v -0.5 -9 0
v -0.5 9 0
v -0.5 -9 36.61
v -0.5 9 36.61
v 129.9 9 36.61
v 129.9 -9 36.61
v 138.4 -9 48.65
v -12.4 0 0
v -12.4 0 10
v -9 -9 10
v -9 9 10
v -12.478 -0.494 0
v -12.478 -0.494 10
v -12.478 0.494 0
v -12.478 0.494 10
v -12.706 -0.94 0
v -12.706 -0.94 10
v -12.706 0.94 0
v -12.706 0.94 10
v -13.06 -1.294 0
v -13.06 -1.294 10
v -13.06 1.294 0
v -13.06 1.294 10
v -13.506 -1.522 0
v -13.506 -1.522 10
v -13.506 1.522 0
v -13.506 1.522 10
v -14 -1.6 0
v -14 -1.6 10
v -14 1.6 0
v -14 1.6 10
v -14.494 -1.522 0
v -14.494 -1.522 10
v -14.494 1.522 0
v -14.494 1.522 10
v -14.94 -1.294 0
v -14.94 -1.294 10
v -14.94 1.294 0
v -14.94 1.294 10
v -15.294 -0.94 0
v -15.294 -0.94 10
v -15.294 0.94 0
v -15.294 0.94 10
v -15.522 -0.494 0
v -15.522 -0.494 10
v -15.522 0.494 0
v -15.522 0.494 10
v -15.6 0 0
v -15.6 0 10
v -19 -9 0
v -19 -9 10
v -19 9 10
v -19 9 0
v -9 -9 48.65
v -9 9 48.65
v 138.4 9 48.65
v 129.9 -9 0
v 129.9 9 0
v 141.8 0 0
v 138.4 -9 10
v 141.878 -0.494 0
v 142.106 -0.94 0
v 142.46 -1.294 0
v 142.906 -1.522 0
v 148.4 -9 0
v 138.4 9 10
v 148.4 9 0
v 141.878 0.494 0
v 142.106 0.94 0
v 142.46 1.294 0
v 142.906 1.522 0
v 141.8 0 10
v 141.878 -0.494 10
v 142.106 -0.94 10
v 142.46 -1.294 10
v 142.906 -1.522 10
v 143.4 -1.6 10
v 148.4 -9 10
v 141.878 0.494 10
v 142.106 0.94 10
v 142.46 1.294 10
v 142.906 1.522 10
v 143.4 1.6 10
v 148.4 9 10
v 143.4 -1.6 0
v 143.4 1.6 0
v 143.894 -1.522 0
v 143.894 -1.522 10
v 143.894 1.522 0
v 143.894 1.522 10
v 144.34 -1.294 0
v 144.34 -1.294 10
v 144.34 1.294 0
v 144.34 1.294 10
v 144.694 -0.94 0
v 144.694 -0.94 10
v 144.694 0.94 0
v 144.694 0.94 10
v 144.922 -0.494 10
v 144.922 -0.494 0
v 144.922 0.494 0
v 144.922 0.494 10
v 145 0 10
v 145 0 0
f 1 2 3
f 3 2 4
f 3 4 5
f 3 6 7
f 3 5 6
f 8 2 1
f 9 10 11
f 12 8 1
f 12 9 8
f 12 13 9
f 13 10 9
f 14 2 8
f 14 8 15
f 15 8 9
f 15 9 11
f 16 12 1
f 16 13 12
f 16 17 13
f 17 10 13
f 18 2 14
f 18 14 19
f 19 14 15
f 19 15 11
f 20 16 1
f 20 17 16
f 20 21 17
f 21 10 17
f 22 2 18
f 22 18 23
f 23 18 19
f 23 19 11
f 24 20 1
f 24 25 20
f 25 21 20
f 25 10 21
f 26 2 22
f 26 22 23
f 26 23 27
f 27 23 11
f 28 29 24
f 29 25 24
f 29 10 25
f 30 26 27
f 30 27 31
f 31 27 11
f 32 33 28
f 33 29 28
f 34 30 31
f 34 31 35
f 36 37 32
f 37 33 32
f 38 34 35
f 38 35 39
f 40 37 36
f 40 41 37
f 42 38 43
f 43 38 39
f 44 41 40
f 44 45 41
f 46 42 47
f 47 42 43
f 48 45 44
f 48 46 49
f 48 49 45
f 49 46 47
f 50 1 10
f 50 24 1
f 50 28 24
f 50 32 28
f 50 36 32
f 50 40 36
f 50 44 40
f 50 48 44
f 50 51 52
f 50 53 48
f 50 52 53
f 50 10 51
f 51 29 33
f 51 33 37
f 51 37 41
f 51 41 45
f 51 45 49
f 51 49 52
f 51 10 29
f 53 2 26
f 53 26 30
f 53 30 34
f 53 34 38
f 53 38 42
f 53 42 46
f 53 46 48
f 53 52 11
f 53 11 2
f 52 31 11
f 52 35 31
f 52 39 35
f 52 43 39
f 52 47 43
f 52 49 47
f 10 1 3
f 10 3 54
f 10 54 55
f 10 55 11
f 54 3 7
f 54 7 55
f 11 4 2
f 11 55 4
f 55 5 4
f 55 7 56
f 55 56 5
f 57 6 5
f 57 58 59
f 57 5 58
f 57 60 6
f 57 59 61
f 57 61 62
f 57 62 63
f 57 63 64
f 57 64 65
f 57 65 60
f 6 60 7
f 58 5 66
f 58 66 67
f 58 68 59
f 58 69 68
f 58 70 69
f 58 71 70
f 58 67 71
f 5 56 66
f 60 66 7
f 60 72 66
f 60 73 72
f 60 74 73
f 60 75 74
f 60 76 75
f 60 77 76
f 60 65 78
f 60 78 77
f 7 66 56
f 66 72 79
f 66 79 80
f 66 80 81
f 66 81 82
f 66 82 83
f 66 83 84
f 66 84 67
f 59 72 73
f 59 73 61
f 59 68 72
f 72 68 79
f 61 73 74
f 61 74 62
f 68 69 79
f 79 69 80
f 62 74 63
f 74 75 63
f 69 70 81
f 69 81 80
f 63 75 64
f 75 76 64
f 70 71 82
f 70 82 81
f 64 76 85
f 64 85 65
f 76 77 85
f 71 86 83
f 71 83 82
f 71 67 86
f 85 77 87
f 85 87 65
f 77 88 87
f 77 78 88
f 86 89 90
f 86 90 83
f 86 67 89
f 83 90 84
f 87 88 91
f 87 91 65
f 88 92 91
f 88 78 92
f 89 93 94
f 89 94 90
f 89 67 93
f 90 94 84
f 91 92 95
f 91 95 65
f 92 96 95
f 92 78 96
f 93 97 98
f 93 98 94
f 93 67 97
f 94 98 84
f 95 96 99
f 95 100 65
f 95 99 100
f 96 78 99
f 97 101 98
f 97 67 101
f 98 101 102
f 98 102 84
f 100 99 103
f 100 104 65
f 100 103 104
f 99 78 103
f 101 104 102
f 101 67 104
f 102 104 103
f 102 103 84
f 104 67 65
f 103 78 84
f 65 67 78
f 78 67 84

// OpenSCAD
// file: lib/naca4.scad
// Naca4.scad - library for parametric airfoils of 4 digit NACA series
// Code: Rudolf Huttary, Berlin 
// June 2015
// commercial use prohibited


// general use: for more examples refer to sampler.scad
// naca = naca digits or 3el vector  (default = 12 or [0, 0, .12])
// L    = chord length [mm]      (default= 100)
// N    = # sample points        (default= 81)
// h    = height [mm]            (default= 1)
// open = close at the thin end? (default = true)
// two equivalent example calls
 airfoil(naca = 2408, L = 60, N=1001, h = 30, open = false); 
// airfoil(naca = [.2, .4, .32], L = 60, N=1001, h = 30, open = false); 

module help()
{
  echo(str("\n\nList of signatures in lib:\n=================\n", 
  "module airfoil(naca=2412, L = 100, N = 81, h = 1, open = false) - renders airfoil object\n", 
  "module airfoil(naca=[.2, .4, .12], L = 100, N = 81, h = 1, open = false) - renders airfoil object using percentage for camber,  camber distance and thicknes\n", 
  "function airfoil_data(naca=12, L = 100, N = 81, open = false)\n",
  "=================\n")); 
}

help(); 
// this is the object
module airfoil(naca=12, L = 100, N = 81, h = 1, open = false)
{
  linear_extrude(height = h)
  polygon(points = airfoil_data(naca, L, N, open)); 
}

module hollow_airfoil(lnaca=12, L = 100, N = 81, h = 1, open = false, wall_thickness = 1)
{
    if (open){
        linear_extrude(height = h)

        if (wall_thickness>0){
            difference(){
                polygon(points = airfoil_data(naca, L, N, false));
                offset(delta = - wall_thickness, chamfer = false) polygon(points = airfoil_data(naca, L, N, open = false));
            }
        }
        else{
            difference(){
                offset(delta = - wall_thickness, chamfer = false) polygon(points = airfoil_data(naca, L, N, open = false));
                polygon(points = airfoil_data(naca, L, N, false));
            }
        }
    }
    else{

        linear_extrude(height = abs(wall_thickness))
            polygon(points = airfoil_data(naca, L, N, false)); 

        linear_extrude(height = h)
            difference(){
                polygon(points = airfoil_data(naca, L, N, open));
                offset(delta = - wall_thickness) polygon(points = airfoil_data(naca, L, N, open = false));
            }

        translate([0,0, h - wall_thickness])
            linear_extrude(height = abs(wall_thickness))
                polygon(points = airfoil_data(naca, L, N, false)); 

    }
}


// this is the main function providing the airfoil data
function airfoil_data(naca=12, L = 100, N = 81, open = false) = 
  let(Na = len(naca)!=3?NACA(naca):naca)
  let(A = [.2969, -0.126, -.3516, .2843, open?-0.1015:-0.1036])
  [for (b=[-180:360/(N):179.99]) 
    let (x = (1-cos(b))/2)  
    let(yt = sign(b)*Na[2]/.2*(A*[sqrt(x), x, x*x, x*x*x, x*x*x*x])) 
    Na[0]==0?L*[x, yt]:L*camber(x, yt, Na[0], Na[1], sign(b))];  


function trailing_edge_angle(naca=12, open = false) = 
  let(Na = len(naca)!=3?NACA(naca):naca)
  let(A = [.2969, -0.126, -.3516, .2843, open?-0.1015:-0.1036])
  let (x =0.999)  // set x near to airfoil trailing edge
  let(yt = Na[2]/.2*(A*[sqrt(x), x, x*x, x*x*x, x*x*x*x])) // calculate distance from x-axis at previously set position
  atan2(yt,1-x);  // calculate angle of triangle between end of airfoil. The triange height corresponds to previously calculated distance from x-axis

function surface_angle(x = 0.5, naca=12, open = false) = 
  let(Na = len(naca)!=3?NACA(naca):naca)
  let(A = [0.2969, -0.126, -0.3516, 0.2843, open?-0.1015:-0.1036])
  let(dy = Na[2]/0.2*(A*[(1/2)*(1/sqrt(x)), 1, 2*x, 3*x*x, 4*x*x*x])) // calculate derivative of airfoil function at the x point
  atan(dy);  // calculate  the angle from function derivative

function surface_distance(x = 0.5, naca=12, open = false) = 
  let(Na = len(naca)!=3?NACA(naca):naca)
  let(A = [0.2969, -0.126, -0.3516, 0.2843, open?-0.1015:-0.1036])
  Na[2]/.2*(A*[sqrt(x), x, x*x, x*x*x, x*x*x*x]); // calculate distance from x-axis at previously set position

// helper functions
function NACA(naca) = 
  let (M = floor(naca/1000))
  let (P = floor((naca-M*1000)/100)) 
  [M/100, P/10, floor(naca-M*1000-P*100)/100];  

function camber(x, y, M, P, upper) = 
  let(yc = (x<P)?M/P/P*(2*P*x-x*x): M/(1-P)/(1-P)*(1 - 2*P + 2*P*x -x*x))
  let(dy = (x<P)?2*M/P/P*(P-x):2*M/(1-P)/(1-P)*(P-x))
  let(th = atan(dy))
  [upper ? x - y*sin(th):x + y*sin(th), upper ? yc + y*cos(th):yc - y*cos(th)];
// main file
module 888_1001(draft){


    width =width_of_accumulator + accumulator_holder_width;
    depth = accumulator_holder_width;
    height = height_of_accumulator - sink_of_accumulator + accumulator_holder_thickness;

    width_cube = accumulator_holder_thickness; 	//šířka kostky ve které je otvor na šroub
    depth_cube = accumulator_holder_width;
    height_cube = accumulator_holder_thickness;	//výška kostky ve které je otvor na šroub


    union(){

    	difference (){
    		translate([-(accumulator_holder_width/2),- accumulator_holder_width/2,0])
    			cube ([width,depth,height]);
    		translate([- global_clearance,height_of_accumulator/2 + global_clearance,-2 - sink_of_accumulator - depth_of_accumulator])
    			rotate([90,0,0])
    				cube([width_of_accumulator + global_clearance*2, depth_of_accumulator+3 + depth_of_accumulator, height_of_accumulator+1]);
     	}

    	difference(){
    		translate([-accumulator_holder_thickness - accumulator_holder_width/2,-accumulator_holder_width/2,0])
    			cube([accumulator_holder_thickness, accumulator_holder_width, accumulator_holder_thickness]);
    	//šroub
    		translate([- accumulator_holder_width/2 - accumulator_holder_thickness/2,0,-10])
    			cylinder(h = 30, r = M3_screw_diameter/2, $fn = 20);
    	}

    	difference(){
    		translate([width_of_accumulator + accumulator_holder_width/2,-accumulator_holder_width/2,0])
    			cube([accumulator_holder_thickness, accumulator_holder_width, accumulator_holder_thickness]);
    	//šroub
    		translate([width_of_accumulator + accumulator_holder_width/2 + accumulator_holder_thickness/2,0,-10])
    			cylinder(h = 30, r = M3_screw_diameter/2, $fn = 20);
    	}
    //final union
    }
//final module
}


888_1001();

use <./lib/naca4.scad>
include <../parameters.scad>
